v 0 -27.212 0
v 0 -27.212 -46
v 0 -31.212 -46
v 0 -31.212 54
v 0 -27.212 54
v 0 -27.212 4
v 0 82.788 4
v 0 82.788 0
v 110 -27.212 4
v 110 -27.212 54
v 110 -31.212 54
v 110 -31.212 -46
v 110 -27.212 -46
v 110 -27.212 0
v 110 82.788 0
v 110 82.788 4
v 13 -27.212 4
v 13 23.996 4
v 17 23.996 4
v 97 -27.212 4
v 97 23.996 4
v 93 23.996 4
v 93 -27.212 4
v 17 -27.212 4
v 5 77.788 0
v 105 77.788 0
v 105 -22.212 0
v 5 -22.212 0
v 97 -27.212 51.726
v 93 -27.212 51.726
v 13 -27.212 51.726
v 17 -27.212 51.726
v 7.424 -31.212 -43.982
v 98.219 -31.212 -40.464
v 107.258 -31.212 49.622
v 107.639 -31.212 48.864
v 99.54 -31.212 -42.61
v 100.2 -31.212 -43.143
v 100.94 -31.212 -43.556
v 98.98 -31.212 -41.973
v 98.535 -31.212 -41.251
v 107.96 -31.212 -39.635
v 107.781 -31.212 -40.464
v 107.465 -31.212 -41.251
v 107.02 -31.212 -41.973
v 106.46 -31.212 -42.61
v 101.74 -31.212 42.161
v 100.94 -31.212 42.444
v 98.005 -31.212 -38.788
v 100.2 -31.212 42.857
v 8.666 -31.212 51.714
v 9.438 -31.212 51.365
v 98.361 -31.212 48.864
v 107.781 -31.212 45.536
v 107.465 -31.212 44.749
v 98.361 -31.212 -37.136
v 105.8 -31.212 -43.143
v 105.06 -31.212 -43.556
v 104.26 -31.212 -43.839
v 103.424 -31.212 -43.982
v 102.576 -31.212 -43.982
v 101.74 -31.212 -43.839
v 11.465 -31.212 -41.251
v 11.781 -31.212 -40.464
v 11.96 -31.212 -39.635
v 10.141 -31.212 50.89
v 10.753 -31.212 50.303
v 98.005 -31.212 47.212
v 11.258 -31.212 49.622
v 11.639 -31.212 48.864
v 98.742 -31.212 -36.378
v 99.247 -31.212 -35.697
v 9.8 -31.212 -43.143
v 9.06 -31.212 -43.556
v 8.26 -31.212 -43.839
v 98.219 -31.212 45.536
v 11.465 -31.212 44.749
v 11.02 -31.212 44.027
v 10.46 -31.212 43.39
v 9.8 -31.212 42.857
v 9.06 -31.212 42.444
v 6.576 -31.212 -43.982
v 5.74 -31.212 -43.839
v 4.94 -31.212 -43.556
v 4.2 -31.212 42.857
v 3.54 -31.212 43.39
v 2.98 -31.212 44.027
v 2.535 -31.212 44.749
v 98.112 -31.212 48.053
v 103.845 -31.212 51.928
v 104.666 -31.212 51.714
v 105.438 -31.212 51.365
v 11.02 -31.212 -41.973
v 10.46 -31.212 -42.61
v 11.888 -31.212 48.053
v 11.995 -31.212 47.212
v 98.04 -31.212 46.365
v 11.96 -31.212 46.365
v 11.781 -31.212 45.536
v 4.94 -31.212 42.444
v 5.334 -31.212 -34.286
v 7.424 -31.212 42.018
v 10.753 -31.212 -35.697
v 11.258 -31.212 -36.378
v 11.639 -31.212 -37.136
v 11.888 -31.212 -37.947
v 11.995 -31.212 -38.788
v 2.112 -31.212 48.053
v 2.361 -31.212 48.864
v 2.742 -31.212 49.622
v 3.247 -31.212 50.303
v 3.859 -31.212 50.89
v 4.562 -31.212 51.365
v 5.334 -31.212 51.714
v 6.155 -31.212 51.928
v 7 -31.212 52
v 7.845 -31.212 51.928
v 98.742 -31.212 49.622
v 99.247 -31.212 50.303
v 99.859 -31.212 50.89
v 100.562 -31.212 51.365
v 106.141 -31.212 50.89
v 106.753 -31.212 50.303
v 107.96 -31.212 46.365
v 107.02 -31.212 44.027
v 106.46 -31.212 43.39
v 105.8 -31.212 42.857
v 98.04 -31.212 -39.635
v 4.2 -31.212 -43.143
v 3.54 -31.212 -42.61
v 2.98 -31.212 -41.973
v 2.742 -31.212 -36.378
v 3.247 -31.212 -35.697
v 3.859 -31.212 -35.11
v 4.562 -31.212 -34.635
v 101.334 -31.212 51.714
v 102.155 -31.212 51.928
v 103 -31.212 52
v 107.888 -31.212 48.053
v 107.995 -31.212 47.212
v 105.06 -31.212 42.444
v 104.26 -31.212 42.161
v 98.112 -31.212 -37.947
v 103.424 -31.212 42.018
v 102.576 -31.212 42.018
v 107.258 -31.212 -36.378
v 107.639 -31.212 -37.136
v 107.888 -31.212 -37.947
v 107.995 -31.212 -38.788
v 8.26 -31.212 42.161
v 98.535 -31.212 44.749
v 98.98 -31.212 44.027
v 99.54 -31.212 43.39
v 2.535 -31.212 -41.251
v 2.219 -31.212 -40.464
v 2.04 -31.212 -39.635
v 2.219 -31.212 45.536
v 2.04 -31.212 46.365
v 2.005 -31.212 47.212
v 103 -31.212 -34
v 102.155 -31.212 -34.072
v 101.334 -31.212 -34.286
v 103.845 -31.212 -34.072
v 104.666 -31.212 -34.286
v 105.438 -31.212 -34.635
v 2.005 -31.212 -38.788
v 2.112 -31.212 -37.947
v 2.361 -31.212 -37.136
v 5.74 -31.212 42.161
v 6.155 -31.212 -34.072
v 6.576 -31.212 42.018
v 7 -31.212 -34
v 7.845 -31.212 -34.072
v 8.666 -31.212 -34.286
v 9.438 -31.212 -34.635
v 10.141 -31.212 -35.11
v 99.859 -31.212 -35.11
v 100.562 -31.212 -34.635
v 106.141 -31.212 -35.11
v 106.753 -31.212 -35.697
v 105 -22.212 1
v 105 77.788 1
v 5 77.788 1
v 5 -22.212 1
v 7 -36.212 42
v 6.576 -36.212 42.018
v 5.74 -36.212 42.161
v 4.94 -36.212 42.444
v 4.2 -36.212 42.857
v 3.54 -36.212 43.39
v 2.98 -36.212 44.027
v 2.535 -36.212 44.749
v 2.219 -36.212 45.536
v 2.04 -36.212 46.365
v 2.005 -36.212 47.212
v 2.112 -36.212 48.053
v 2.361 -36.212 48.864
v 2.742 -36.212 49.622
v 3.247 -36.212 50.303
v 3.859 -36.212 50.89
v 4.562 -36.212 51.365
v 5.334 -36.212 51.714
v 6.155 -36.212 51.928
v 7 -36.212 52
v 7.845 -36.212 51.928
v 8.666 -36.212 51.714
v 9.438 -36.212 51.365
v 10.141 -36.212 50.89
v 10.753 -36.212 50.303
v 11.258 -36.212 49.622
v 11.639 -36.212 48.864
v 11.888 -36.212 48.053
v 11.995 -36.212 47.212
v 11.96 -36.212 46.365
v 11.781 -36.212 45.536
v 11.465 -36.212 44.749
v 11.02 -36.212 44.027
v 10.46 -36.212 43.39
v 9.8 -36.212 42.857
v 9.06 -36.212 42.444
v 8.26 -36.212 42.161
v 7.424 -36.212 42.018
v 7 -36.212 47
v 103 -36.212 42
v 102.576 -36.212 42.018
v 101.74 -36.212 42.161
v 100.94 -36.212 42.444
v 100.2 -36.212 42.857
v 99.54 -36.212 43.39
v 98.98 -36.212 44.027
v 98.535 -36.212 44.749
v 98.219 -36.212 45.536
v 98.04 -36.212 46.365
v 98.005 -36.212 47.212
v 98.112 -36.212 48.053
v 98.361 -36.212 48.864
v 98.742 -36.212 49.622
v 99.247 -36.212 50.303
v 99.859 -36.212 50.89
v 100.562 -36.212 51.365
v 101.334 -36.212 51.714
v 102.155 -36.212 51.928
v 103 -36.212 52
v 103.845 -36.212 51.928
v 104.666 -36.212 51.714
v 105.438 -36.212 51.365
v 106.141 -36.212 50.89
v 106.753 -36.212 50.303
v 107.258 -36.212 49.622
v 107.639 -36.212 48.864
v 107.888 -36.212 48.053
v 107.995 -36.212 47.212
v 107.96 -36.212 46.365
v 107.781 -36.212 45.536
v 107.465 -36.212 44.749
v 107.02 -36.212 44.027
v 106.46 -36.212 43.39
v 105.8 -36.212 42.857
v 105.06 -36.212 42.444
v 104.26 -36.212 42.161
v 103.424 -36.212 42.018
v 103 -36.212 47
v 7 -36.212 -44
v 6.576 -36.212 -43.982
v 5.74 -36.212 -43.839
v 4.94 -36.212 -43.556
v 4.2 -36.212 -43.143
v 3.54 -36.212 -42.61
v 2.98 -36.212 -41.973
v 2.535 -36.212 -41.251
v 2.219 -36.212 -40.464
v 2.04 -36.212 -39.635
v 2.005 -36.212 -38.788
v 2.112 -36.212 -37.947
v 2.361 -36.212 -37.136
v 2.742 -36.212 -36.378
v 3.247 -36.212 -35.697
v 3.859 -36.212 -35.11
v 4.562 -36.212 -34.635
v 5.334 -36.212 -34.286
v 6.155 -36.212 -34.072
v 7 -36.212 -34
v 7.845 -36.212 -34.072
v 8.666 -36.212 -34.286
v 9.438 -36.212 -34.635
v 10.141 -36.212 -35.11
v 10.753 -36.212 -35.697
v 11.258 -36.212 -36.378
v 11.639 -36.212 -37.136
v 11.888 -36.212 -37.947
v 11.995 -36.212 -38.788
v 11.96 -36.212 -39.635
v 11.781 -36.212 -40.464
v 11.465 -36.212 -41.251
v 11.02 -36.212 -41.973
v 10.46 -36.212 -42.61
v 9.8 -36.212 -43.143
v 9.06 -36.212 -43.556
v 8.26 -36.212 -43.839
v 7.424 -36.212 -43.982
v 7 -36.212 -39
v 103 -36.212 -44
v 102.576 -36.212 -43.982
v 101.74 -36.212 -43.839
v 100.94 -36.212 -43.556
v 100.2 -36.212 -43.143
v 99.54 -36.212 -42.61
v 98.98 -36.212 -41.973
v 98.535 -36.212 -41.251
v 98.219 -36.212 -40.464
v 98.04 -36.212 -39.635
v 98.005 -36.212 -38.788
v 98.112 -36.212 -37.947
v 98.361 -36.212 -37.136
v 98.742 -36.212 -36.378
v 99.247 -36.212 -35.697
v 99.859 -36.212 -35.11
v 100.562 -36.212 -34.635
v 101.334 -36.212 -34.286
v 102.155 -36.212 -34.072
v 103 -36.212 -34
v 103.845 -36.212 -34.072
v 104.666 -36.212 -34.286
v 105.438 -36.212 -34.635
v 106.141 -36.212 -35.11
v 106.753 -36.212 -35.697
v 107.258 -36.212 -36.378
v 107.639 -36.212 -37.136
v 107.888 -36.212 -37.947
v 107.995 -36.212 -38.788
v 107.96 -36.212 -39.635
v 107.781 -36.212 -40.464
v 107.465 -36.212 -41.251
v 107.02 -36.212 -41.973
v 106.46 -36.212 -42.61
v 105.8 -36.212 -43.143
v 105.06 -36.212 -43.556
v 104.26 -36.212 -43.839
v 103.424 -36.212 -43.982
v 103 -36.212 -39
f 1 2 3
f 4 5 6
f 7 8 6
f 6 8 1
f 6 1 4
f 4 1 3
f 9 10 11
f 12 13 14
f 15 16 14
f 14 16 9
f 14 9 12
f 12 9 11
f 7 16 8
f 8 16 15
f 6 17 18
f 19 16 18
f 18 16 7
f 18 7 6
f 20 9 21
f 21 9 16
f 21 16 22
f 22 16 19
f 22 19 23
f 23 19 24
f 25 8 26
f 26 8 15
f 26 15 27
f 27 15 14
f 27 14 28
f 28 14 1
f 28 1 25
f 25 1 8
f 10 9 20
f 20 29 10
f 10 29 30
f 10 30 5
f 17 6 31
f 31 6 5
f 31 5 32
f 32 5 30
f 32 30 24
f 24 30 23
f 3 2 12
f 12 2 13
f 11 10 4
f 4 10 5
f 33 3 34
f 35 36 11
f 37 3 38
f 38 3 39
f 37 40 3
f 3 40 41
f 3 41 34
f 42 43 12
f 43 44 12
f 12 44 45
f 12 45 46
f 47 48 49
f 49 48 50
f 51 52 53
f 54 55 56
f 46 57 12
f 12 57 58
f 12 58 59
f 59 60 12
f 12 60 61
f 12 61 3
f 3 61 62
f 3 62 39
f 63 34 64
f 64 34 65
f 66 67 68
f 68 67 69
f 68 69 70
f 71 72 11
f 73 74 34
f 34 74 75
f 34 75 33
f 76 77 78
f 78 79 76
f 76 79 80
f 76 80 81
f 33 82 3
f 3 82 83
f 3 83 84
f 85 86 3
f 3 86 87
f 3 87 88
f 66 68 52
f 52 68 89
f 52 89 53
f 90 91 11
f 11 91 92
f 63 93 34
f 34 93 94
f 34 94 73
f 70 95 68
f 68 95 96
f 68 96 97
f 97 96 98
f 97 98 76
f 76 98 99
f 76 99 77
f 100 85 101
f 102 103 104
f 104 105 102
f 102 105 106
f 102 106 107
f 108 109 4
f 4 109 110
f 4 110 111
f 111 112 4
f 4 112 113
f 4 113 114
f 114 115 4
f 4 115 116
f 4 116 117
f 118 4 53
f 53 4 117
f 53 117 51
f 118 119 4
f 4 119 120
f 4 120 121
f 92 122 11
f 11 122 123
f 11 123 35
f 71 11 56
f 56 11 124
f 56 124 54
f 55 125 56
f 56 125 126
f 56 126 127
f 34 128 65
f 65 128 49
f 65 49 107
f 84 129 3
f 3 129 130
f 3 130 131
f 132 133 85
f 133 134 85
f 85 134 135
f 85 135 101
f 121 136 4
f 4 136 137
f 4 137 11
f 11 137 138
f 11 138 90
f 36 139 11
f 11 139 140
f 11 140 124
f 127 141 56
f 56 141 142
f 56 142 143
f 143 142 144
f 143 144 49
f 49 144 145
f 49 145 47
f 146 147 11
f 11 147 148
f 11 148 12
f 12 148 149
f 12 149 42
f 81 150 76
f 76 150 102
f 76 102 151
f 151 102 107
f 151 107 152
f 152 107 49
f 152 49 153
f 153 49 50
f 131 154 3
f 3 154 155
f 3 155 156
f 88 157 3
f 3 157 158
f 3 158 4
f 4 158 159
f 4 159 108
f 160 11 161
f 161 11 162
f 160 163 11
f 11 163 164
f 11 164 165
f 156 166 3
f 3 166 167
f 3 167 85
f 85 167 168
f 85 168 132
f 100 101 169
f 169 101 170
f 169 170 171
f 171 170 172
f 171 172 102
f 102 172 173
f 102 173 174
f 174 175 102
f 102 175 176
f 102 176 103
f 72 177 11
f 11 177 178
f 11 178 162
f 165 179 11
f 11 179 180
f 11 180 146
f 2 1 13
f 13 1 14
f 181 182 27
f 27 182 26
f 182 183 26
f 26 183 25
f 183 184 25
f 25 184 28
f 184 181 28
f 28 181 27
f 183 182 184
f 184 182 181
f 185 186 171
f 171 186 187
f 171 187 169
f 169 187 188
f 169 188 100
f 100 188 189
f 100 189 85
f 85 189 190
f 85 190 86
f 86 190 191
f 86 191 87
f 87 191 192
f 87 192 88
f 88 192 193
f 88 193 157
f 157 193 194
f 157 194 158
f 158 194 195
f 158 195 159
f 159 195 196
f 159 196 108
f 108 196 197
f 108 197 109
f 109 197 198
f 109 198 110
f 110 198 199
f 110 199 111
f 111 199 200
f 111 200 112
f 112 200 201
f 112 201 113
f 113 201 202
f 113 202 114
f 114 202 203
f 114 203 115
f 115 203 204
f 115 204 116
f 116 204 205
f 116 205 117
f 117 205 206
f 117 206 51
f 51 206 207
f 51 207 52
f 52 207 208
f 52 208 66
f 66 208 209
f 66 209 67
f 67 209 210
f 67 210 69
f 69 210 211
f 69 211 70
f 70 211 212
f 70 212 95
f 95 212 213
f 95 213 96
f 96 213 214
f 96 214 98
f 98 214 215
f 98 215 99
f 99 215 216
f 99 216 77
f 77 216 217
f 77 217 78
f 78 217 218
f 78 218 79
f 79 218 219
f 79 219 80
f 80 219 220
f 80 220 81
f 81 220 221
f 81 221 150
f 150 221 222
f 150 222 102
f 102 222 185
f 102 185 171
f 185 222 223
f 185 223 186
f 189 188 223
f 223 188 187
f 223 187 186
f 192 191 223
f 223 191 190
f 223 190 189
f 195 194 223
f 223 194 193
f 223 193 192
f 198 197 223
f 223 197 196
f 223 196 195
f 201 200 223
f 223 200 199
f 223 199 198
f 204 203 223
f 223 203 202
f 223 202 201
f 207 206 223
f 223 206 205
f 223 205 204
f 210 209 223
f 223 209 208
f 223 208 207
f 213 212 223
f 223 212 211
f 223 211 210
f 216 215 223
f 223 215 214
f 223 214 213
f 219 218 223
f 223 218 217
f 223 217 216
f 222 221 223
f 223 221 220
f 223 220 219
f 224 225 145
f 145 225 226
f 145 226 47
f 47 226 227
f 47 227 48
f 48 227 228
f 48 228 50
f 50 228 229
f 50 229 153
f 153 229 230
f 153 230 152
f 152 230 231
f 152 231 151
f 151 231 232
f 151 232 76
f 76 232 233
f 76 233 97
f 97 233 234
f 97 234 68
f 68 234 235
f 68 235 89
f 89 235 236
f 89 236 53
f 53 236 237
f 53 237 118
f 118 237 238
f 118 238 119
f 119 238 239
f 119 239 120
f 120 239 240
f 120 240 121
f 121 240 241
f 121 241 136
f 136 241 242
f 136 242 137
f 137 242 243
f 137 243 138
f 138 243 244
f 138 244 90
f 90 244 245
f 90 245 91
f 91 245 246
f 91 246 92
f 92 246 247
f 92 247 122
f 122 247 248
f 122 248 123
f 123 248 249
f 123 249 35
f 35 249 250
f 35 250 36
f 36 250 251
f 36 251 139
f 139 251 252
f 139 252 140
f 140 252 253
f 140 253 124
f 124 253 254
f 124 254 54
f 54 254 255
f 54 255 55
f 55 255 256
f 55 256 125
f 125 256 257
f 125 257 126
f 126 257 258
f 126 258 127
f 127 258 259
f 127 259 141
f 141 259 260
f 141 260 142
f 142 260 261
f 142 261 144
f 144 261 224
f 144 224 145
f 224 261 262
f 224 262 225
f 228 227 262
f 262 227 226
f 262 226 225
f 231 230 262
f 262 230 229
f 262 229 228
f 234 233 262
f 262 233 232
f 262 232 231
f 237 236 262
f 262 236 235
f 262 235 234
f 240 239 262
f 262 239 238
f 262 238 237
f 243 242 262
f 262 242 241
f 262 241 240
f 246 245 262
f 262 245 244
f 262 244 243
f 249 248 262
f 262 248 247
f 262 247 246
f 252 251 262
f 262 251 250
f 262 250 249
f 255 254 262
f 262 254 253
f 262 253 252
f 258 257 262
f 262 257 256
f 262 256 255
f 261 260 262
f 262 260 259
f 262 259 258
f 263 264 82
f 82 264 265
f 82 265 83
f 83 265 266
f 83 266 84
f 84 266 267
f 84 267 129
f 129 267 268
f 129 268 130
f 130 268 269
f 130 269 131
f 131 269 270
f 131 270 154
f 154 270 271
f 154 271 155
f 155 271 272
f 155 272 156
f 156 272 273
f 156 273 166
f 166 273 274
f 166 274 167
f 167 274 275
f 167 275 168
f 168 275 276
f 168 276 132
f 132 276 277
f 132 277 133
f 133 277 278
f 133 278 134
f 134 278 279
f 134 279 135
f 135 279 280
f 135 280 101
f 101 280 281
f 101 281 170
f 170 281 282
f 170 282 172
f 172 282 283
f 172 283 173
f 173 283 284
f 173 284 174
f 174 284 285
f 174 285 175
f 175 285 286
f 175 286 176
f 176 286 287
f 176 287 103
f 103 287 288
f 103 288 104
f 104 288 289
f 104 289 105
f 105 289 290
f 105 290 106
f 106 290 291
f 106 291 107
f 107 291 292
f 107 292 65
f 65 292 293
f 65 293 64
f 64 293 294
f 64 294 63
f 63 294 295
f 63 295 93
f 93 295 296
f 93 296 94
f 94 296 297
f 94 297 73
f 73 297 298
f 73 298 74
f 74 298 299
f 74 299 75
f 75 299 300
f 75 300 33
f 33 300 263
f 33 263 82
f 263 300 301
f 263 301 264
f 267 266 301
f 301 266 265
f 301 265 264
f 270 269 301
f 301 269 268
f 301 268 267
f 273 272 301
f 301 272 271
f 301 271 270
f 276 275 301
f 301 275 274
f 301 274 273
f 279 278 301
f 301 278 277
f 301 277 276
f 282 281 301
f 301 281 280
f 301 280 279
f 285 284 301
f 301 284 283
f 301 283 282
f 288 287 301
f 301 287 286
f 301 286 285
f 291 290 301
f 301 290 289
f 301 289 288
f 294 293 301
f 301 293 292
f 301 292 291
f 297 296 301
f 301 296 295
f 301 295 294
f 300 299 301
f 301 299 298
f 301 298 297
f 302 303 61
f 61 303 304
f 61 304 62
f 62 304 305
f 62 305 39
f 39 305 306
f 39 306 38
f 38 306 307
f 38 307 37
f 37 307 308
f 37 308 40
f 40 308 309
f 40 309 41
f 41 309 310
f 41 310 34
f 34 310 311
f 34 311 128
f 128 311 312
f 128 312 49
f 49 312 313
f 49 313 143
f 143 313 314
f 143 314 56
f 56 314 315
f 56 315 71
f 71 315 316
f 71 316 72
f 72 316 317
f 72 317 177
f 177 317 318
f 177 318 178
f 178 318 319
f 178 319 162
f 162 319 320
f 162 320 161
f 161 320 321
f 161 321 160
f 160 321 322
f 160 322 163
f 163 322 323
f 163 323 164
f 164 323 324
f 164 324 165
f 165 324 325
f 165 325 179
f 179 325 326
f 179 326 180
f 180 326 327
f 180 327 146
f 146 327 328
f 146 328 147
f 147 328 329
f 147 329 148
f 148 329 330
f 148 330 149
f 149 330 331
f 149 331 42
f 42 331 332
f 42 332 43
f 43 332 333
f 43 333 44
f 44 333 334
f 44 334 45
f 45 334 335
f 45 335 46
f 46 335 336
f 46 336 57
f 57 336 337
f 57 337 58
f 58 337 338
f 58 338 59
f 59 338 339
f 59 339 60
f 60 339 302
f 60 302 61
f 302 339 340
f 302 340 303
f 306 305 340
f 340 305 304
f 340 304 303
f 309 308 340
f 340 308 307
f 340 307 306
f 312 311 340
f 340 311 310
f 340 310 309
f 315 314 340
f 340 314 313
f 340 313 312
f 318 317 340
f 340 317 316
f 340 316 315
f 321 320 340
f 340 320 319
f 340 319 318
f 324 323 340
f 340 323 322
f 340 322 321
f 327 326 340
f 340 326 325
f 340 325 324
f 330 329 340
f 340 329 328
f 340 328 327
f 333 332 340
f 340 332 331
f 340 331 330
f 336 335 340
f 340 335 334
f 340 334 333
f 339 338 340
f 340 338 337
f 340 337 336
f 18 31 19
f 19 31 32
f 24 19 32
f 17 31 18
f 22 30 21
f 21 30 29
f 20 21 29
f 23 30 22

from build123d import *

# Parameters (mm, degrees)
ESQUISSE1_W             = 110
ESQUISSE1_H             = 110
BOSS_EXTRU_1_DEPTH      = 4
ESQUISSE2_W             = 110
ESQUISSE2_H             = 100
BOSS_EXTRU_2_DEPTH      = 4
ESQUISSE3_W             = 100
ESQUISSE3_H             = 100
ENL_V_MAT_EXTRU_1_DEPTH = 1
ESQUISSE6_R             = 5
BOSS_EXTRU_3_DEPTH      = 5
NERVURE1_REACH          = 139.095
ESQUISSE8_WALL_W        = 346.189200108
ESQUISSE8_WALL_H        = 4
NERVURE6_REACH          = 139.095
ESQUISSE9_WALL_W        = 346.189200108
ESQUISSE9_WALL_H        = 4


with BuildPart() as part:
    # Esquisse1 → Boss.-Extru.1 (new body)
    with BuildSketch(Plane.XY):
        with Locations((55, 27.788461538)):
            Rectangle(ESQUISSE1_W, ESQUISSE1_H)
    extrude(amount=BOSS_EXTRU_1_DEPTH)

    # Esquisse2 → Boss.-Extru.2 (add)
    with BuildSketch(Plane.XZ.offset(27.211538462)):
        with Locations((55, 4)):
            Rectangle(ESQUISSE2_W, ESQUISSE2_H)
    extrude(amount=BOSS_EXTRU_2_DEPTH)

    # Esquisse3 → Enlèv. mat.-Extru.1 (cut)
    with BuildSketch(Plane(origin=(0, 0, 0), x_dir=(-1, 0, 0), z_dir=(0, 0, -1))):
        with Locations((-55, 27.788461538)):
            Rectangle(ESQUISSE3_W, ESQUISSE3_H)
    extrude(amount=-ENL_V_MAT_EXTRU_1_DEPTH, mode=Mode.SUBTRACT)

    # Esquisse6 → Boss.-Extru.3 (add)
    with BuildSketch(Plane.XZ.offset(31.211538462)):
        with Locations(Location((7, 47, 0), (0, 0, 90))):
            Circle(ESQUISSE6_R)
        with Locations(Location((103, 47, 0), (0, 0, 90))):
            Circle(ESQUISSE6_R)
        with Locations(Location((7, -39, 0), (0, 0, 90))):
            Circle(ESQUISSE6_R)
        with Locations(Location((103, -39, 0), (0, 0, 90))):
            Circle(ESQUISSE6_R)
    extrude(amount=BOSS_EXTRU_3_DEPTH)

    # Esquisse8 wall → Nervure1 (add, up to next)
    with BuildSketch(Plane(origin=(15, -1.607688641, 27.863002208), x_dir=(0, 0.731538566297, -0.681800063083), z_dir=(0, 0.681800063083, 0.731538566297)), mode=Mode.PRIVATE) as nervure1_sk1:
        Rectangle(ESQUISSE8_WALL_W, ESQUISSE8_WALL_H)
    nervure1_tool1 = extrude(nervure1_sk1.sketch, amount=-NERVURE1_REACH, mode=Mode.PRIVATE) - part.part
    add(nervure1_tool1.solids().sort_by_distance((15, -1.607688641, 27.863002208))[0])

    # Esquisse9 wall → Nervure6 (add, up to next)
    with BuildSketch(Plane(origin=(95, -1.607688641, 27.863002208), x_dir=(0, -0.731538566297, 0.681800063083), z_dir=(0, -0.681800063083, -0.731538566297)), mode=Mode.PRIVATE) as nervure6_sk1:
        Rectangle(ESQUISSE9_WALL_W, ESQUISSE9_WALL_H)
    nervure6_tool1 = extrude(nervure6_sk1.sketch, amount=NERVURE6_REACH, mode=Mode.PRIVATE) - part.part
    add(nervure6_tool1.solids().sort_by_distance((95, -1.607688641, 27.863002208))[0])


solid = part.part
